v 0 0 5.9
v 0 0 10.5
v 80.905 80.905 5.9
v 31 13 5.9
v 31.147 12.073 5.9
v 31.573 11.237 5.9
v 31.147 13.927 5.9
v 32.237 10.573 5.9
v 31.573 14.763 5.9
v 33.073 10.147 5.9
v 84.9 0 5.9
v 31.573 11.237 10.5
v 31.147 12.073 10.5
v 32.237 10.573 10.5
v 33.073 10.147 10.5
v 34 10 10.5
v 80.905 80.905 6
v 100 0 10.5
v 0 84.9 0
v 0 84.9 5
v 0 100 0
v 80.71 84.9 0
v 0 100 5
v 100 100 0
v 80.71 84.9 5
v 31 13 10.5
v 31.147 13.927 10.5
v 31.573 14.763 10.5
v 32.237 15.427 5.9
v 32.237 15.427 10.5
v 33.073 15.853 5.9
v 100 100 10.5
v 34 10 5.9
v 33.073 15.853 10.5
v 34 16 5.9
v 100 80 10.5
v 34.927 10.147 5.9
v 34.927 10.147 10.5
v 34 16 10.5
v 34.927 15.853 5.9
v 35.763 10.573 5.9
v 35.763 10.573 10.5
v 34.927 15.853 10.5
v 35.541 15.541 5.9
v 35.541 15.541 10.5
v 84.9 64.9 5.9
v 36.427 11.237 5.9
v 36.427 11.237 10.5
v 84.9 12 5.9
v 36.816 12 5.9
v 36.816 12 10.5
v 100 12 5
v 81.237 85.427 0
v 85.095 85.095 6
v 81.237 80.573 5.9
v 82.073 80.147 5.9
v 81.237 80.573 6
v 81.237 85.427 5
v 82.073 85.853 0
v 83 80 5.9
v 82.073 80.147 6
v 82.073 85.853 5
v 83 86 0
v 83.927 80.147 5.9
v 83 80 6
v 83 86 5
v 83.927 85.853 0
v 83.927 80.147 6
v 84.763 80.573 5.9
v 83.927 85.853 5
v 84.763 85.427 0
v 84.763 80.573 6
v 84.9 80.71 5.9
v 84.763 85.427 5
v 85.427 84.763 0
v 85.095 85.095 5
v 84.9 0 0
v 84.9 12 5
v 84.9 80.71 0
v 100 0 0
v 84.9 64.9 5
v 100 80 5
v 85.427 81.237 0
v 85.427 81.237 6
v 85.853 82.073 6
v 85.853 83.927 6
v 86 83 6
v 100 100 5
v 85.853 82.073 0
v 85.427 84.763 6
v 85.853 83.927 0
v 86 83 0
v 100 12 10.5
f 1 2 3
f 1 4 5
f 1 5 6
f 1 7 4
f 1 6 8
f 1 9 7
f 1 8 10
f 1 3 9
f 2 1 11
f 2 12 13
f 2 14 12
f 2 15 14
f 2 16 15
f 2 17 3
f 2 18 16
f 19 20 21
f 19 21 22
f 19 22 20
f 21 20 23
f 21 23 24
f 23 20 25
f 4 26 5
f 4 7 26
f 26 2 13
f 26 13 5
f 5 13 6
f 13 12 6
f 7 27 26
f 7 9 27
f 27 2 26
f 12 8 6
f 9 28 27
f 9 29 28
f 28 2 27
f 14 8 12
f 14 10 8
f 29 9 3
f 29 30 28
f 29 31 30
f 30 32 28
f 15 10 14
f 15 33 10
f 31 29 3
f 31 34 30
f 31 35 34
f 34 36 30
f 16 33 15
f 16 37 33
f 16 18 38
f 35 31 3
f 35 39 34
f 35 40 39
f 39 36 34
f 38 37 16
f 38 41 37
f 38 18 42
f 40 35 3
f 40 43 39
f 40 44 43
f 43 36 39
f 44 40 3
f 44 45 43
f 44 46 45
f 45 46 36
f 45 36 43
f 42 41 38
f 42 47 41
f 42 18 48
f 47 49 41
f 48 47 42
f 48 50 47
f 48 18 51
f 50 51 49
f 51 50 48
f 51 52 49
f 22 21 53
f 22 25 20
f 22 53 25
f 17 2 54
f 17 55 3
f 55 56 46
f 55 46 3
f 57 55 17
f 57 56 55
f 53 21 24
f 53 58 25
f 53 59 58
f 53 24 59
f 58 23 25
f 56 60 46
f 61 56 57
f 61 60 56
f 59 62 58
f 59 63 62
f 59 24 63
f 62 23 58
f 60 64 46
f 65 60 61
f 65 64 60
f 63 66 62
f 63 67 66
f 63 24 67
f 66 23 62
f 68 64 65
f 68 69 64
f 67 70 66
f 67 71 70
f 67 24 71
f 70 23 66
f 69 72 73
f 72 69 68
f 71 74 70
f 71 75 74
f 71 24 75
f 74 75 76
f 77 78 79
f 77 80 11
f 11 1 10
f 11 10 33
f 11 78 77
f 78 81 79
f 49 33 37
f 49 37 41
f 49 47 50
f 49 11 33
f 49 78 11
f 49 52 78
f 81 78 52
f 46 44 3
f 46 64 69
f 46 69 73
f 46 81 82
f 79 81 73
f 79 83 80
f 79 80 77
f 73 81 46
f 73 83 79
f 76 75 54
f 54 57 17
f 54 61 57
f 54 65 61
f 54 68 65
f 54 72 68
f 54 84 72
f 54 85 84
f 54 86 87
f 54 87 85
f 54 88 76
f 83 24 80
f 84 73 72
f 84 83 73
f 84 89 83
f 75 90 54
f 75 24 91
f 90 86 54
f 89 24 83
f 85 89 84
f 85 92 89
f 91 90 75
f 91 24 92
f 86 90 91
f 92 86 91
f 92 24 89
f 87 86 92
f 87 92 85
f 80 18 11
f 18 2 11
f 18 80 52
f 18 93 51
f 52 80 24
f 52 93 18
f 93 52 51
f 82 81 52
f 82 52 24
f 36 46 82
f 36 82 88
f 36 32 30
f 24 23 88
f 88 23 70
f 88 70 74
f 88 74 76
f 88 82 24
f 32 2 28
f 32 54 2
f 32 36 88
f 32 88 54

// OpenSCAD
difference() {
	union(){
		cube([100, 100, 5]);
		translate([0, 0, 4.5]) {
			linear_extrude(6){
				polygon(
					points=[
						[0, 0],
						[20, 0],
						[100, 100-20],
						[100, 100],
					]
				);
				polygon(
					points=[
						[20, 0],
						[20, 12],
						[100, 12],
						[100, 0],
					]
				);
			}
		}
	}
	translate([-0.1, -0.1, -0.1]) {
		cube([85, 85, 6]);
	}
	translate([34, 13, 5]) {
		cylinder(d=6, h=8, $fn=20);
	}
	translate([100-17, 100-17, -1]) {
		cylinder(d=6, h=7, $fn=20);
	}
}
